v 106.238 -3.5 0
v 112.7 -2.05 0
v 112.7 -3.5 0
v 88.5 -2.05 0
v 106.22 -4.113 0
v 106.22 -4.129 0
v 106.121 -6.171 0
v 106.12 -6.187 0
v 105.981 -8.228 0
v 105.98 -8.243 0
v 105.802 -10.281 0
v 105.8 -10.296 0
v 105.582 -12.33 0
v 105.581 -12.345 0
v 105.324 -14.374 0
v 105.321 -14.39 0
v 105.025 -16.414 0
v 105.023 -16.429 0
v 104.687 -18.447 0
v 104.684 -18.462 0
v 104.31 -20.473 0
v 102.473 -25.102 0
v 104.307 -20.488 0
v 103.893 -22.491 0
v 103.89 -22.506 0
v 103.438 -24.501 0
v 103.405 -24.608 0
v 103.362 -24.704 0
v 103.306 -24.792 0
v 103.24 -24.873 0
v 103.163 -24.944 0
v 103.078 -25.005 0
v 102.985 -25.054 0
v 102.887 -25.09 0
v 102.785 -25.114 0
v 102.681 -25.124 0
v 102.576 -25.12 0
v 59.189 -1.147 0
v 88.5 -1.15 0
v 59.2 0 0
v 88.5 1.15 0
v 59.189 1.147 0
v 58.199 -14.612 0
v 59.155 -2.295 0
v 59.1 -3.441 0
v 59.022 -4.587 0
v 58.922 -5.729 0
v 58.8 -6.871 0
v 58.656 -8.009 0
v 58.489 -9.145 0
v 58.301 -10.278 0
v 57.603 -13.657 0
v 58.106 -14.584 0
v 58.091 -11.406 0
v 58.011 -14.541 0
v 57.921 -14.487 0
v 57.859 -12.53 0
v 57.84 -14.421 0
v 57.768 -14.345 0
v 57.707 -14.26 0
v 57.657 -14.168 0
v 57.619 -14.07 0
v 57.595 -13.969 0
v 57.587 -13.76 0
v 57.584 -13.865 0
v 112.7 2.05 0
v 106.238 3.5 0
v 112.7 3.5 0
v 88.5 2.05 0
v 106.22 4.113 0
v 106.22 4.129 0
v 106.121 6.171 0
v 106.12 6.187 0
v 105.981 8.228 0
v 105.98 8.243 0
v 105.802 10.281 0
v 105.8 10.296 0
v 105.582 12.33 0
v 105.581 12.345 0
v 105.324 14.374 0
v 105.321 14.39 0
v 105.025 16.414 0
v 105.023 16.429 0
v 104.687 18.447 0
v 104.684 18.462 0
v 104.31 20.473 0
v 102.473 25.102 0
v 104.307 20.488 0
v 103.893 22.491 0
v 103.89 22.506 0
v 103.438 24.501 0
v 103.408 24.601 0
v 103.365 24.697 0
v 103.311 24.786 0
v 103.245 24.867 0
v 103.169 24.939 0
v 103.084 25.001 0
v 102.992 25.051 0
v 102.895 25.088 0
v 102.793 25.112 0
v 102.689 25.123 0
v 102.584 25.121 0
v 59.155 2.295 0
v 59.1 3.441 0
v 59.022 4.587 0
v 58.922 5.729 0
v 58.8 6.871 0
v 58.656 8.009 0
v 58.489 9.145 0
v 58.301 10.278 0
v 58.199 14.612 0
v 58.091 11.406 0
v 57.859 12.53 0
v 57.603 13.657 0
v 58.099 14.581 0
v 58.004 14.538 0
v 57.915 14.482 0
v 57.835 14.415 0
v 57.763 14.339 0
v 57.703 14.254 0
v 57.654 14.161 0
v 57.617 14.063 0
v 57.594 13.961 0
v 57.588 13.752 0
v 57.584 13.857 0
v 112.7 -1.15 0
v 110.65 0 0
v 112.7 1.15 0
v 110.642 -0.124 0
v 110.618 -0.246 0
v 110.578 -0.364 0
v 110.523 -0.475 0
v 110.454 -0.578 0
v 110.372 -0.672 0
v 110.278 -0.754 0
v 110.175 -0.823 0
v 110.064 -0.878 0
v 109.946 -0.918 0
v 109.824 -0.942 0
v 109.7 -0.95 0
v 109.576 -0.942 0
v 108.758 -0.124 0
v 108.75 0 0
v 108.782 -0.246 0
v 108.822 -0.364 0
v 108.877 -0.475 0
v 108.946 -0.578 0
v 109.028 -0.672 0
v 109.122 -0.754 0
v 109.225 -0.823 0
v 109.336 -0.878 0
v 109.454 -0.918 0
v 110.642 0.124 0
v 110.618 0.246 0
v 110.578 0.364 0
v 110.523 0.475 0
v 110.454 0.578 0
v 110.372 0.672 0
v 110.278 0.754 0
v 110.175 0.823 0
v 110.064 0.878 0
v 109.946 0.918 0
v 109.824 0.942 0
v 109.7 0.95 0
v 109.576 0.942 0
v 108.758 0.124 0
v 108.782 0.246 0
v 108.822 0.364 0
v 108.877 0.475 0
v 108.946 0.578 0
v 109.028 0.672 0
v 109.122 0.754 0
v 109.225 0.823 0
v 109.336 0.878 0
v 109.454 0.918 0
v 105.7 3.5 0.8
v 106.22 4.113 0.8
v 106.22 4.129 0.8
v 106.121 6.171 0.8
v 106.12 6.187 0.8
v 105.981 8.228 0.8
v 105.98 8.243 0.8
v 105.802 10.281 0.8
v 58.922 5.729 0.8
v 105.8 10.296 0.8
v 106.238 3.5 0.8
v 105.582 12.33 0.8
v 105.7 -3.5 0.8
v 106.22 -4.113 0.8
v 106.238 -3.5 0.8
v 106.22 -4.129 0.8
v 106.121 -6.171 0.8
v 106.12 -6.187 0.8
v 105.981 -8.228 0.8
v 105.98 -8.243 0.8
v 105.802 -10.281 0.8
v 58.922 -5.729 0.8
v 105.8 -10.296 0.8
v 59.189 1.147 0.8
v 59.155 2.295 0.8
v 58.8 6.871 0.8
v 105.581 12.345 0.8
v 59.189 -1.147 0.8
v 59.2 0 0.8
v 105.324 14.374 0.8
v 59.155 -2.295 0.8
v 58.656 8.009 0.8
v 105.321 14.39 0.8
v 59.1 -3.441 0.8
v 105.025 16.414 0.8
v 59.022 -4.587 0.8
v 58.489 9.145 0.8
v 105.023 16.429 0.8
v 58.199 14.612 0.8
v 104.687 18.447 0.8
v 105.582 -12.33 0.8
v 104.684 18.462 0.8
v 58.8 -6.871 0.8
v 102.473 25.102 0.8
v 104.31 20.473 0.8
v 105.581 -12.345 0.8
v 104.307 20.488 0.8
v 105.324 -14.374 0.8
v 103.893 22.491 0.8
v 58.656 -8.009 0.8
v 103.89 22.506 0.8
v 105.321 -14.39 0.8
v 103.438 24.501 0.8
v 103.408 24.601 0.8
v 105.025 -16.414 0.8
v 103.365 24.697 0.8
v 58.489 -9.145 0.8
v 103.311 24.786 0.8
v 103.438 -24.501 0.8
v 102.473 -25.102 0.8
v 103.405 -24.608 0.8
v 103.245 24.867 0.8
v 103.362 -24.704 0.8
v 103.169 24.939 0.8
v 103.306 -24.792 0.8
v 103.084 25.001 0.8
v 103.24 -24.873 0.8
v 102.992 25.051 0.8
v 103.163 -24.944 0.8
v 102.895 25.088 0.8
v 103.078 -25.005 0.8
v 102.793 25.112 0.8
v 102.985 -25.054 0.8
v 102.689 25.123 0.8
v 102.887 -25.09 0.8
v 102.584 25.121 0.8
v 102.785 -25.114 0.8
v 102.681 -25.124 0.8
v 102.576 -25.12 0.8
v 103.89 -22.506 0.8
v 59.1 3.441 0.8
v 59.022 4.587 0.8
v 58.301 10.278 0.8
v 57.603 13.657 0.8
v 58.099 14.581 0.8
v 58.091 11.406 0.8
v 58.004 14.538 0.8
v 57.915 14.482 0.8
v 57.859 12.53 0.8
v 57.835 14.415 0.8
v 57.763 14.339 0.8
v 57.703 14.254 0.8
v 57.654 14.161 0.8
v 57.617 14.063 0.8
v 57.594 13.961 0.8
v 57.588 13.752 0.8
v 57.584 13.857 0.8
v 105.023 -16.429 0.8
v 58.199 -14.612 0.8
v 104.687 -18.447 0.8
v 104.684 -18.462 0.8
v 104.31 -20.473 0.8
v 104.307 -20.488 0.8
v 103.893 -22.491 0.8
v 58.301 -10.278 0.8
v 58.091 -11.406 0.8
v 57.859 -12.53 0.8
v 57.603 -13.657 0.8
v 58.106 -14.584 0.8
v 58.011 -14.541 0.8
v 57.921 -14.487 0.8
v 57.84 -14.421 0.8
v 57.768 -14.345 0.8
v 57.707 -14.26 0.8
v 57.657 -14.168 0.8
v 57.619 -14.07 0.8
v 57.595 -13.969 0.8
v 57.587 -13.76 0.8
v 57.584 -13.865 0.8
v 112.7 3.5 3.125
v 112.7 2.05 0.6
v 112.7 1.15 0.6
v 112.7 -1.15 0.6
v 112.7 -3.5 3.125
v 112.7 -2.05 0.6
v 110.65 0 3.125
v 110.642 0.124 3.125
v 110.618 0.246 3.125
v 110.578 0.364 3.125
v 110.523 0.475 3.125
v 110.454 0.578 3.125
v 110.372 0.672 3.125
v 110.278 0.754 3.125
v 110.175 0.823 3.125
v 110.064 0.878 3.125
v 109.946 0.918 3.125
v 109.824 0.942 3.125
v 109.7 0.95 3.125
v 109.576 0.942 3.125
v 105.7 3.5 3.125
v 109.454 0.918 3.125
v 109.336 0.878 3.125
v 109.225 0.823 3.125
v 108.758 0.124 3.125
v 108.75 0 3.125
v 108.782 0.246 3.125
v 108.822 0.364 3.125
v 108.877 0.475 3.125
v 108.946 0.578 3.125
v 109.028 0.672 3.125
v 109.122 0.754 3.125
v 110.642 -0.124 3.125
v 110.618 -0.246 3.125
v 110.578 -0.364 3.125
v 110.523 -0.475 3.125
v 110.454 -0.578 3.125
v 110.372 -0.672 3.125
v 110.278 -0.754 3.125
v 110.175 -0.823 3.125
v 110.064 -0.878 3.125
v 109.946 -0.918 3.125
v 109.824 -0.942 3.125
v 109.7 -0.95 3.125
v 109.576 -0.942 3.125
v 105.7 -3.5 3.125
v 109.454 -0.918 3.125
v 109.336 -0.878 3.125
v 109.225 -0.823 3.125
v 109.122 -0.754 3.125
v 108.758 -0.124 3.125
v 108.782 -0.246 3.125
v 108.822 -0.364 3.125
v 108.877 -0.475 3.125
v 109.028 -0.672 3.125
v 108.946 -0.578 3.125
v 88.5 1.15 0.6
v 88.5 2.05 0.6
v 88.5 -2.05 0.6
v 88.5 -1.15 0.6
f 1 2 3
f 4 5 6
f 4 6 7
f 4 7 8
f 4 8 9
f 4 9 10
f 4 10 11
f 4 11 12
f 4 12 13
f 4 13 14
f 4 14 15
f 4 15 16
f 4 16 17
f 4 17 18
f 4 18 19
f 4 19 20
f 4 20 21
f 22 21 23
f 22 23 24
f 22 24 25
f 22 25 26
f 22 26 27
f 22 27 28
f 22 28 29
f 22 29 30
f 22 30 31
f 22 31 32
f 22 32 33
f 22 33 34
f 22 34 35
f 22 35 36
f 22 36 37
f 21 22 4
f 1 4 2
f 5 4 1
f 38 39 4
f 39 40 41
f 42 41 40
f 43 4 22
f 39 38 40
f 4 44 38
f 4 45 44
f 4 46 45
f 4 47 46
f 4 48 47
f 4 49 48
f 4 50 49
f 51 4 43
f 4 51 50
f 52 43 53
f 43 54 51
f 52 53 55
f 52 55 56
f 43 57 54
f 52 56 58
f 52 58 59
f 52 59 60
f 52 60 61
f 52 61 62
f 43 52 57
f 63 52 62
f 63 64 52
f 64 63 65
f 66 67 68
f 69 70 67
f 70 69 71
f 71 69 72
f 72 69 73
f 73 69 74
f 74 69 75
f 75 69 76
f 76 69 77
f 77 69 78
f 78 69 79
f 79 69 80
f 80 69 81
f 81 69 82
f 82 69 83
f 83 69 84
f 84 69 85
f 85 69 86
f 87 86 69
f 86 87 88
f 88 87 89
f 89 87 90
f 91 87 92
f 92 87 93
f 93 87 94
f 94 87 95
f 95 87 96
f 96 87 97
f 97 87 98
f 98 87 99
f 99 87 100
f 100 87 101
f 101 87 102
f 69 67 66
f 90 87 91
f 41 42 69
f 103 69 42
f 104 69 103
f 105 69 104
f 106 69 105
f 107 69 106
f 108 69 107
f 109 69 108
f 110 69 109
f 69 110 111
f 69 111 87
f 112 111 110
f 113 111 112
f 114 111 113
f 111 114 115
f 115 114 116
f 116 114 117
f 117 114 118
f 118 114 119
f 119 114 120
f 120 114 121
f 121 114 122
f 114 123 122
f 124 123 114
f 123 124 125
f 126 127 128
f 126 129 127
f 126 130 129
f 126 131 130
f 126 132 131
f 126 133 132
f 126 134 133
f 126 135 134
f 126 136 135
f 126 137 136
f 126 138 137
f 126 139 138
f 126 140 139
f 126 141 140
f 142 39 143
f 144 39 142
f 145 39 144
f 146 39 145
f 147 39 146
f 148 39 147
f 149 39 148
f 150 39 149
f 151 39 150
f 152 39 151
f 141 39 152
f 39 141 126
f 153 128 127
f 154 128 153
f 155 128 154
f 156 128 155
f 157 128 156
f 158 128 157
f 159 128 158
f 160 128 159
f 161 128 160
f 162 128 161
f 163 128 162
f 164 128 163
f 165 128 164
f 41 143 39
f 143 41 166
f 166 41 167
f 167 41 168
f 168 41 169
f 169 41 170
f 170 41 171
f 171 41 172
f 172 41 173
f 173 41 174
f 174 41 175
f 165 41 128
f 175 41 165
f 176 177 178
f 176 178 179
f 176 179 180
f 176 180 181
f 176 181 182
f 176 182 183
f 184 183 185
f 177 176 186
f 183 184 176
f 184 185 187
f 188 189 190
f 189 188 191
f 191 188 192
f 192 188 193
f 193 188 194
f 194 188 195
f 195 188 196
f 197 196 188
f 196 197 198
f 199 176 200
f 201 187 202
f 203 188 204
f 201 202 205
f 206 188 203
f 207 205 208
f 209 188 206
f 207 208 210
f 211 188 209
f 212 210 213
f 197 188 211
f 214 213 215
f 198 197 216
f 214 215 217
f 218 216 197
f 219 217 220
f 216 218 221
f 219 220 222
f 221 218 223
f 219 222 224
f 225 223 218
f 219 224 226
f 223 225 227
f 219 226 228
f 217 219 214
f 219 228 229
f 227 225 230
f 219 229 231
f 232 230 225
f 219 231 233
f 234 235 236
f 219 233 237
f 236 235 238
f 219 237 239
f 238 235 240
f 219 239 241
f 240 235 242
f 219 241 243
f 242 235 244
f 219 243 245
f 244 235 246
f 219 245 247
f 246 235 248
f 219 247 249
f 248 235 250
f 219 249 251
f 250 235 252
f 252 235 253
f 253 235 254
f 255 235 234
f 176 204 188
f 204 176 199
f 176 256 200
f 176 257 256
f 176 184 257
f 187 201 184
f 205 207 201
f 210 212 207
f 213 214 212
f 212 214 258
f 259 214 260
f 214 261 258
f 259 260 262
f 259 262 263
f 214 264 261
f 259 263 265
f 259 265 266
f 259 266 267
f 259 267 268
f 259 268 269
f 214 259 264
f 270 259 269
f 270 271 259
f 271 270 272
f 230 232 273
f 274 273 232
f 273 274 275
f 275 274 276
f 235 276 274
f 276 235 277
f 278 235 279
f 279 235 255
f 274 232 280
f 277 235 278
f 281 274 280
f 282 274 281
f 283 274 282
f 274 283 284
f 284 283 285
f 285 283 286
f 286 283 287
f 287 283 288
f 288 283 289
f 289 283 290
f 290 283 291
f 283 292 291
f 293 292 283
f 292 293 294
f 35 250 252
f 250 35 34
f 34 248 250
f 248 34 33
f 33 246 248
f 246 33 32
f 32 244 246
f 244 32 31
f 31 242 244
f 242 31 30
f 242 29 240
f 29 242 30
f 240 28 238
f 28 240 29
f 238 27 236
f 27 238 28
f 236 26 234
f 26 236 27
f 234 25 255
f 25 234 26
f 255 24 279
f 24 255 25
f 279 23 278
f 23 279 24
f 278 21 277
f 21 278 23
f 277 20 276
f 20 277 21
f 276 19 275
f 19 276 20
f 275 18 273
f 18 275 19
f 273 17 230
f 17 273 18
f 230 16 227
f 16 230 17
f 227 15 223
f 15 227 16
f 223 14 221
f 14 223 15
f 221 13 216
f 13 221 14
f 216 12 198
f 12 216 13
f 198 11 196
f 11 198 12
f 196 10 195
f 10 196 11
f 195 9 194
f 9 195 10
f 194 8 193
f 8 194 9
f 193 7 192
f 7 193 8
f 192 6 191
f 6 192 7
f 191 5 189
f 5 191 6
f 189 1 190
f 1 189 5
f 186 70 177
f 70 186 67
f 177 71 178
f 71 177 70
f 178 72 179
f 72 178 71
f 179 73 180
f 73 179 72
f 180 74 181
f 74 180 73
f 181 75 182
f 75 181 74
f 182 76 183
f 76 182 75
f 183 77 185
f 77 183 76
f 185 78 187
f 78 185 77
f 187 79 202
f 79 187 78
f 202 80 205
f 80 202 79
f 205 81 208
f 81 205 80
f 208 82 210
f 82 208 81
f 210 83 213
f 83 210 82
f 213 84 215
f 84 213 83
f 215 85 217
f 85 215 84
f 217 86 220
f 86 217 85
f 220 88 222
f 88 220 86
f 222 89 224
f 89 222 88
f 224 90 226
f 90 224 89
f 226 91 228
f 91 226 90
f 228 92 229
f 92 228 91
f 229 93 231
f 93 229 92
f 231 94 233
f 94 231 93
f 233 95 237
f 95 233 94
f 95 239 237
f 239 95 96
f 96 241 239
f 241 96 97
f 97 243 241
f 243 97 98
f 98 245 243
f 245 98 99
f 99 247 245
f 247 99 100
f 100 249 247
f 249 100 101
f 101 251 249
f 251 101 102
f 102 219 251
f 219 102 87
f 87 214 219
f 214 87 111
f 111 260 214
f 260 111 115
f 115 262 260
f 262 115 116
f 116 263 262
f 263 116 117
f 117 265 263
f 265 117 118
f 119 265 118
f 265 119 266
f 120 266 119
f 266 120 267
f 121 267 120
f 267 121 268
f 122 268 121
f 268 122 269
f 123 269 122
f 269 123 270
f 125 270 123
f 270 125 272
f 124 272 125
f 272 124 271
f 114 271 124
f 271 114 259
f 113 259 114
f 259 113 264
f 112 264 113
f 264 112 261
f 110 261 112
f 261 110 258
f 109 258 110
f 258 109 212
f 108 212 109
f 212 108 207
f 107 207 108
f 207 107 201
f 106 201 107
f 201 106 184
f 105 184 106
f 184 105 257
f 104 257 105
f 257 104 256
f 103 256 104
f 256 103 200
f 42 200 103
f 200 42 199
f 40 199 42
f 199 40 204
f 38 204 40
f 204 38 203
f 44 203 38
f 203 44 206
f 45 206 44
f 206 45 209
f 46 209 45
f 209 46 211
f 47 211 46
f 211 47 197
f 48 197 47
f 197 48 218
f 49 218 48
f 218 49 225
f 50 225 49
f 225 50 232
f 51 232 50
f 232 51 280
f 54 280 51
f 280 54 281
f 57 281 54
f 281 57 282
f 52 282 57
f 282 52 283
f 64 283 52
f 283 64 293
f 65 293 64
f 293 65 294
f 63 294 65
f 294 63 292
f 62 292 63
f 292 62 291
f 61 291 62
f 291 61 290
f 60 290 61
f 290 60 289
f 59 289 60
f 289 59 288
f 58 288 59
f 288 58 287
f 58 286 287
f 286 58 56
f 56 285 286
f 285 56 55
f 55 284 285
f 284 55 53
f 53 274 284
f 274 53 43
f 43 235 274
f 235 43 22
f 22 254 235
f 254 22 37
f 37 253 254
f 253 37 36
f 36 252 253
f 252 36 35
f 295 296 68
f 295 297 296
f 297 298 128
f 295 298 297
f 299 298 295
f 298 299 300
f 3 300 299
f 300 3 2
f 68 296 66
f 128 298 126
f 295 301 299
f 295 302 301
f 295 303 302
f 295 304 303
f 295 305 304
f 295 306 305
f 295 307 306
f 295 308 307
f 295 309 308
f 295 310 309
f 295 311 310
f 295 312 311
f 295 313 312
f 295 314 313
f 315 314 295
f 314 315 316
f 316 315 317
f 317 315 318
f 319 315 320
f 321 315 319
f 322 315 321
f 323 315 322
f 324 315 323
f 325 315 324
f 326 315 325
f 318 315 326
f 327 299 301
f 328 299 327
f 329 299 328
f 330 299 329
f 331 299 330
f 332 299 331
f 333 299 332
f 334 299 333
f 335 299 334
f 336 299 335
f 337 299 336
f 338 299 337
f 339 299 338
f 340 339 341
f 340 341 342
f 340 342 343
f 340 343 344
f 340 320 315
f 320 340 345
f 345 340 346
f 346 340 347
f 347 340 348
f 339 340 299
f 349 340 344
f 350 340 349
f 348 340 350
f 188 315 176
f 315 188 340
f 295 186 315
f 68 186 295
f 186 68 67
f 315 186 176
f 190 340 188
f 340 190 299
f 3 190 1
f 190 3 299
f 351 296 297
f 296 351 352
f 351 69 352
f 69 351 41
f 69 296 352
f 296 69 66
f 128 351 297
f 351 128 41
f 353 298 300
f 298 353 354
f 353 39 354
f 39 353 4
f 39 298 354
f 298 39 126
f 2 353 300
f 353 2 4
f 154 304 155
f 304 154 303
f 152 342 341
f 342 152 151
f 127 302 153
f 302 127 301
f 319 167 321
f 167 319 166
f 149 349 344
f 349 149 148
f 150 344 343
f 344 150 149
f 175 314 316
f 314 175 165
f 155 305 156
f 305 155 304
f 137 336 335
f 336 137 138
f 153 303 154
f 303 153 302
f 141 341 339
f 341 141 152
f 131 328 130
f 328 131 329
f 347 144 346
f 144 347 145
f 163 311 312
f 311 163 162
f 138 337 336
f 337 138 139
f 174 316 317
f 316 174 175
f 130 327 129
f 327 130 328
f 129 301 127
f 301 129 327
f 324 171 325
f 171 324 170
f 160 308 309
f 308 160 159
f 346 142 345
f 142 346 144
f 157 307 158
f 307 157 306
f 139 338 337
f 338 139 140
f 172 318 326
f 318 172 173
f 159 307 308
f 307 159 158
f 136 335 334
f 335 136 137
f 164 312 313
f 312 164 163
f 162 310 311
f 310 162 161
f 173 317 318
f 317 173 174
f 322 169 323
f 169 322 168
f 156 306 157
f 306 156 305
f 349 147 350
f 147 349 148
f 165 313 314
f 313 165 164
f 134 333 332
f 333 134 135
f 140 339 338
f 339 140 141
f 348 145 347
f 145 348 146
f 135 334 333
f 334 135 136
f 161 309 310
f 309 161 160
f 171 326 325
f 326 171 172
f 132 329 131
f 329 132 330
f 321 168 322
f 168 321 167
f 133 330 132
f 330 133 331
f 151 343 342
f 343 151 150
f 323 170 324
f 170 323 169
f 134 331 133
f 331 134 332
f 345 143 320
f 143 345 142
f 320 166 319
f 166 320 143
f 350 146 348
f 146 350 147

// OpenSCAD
// Gen-CR — bobbin LID (top flange + locating tab). Print x12, flange face DOWN on the bed.
// CA-glue onto the hub top BEFORE winding. Tab = lap joint into the stator tab pocket; 1.75 mm filament
// pin through pin hole + stator ledge, trim flush. Lead slots carry both leads flush.
include <parameters.scad>;
$fn = 48;
module sector_2d(r_in, r_out, ang) {
    polygon([
        for (a = [-ang/2 : ang/24 : ang/2]) [r_in*cos(a), r_in*sin(a)],
        for (a = [ang/2 : -ang/24 : -ang/2]) [r_out*cos(a), r_out*sin(a)]
    ]);
}
module footprint_2d() { offset(r=wall) sector_2d(coil_id_r, coil_od_r, span_deg); }
module hub_2d()       { offset(delta=-coil_core_inset) sector_2d(coil_id_r, coil_od_r, span_deg); }

difference() {
    union() {
        linear_extrude(flange_t) footprint_2d();
        translate([coil_od_r + 0.2, -tab_w/2, 0]) cube([tab_len, tab_w, tab_h]);
    }
    translate([coil_mount_r, 0, -0.1]) cylinder(d=pin_d, h=tab_h + 1);
    for (y = [lead_y, -lead_y])
        translate([coil_od_r - coil_core_inset - 0.5, y - lead_slot_w/2, -0.1])
            cube([coil_core_inset + tab_len + 2, lead_slot_w, lead_groove_d + 0.1]);
}
